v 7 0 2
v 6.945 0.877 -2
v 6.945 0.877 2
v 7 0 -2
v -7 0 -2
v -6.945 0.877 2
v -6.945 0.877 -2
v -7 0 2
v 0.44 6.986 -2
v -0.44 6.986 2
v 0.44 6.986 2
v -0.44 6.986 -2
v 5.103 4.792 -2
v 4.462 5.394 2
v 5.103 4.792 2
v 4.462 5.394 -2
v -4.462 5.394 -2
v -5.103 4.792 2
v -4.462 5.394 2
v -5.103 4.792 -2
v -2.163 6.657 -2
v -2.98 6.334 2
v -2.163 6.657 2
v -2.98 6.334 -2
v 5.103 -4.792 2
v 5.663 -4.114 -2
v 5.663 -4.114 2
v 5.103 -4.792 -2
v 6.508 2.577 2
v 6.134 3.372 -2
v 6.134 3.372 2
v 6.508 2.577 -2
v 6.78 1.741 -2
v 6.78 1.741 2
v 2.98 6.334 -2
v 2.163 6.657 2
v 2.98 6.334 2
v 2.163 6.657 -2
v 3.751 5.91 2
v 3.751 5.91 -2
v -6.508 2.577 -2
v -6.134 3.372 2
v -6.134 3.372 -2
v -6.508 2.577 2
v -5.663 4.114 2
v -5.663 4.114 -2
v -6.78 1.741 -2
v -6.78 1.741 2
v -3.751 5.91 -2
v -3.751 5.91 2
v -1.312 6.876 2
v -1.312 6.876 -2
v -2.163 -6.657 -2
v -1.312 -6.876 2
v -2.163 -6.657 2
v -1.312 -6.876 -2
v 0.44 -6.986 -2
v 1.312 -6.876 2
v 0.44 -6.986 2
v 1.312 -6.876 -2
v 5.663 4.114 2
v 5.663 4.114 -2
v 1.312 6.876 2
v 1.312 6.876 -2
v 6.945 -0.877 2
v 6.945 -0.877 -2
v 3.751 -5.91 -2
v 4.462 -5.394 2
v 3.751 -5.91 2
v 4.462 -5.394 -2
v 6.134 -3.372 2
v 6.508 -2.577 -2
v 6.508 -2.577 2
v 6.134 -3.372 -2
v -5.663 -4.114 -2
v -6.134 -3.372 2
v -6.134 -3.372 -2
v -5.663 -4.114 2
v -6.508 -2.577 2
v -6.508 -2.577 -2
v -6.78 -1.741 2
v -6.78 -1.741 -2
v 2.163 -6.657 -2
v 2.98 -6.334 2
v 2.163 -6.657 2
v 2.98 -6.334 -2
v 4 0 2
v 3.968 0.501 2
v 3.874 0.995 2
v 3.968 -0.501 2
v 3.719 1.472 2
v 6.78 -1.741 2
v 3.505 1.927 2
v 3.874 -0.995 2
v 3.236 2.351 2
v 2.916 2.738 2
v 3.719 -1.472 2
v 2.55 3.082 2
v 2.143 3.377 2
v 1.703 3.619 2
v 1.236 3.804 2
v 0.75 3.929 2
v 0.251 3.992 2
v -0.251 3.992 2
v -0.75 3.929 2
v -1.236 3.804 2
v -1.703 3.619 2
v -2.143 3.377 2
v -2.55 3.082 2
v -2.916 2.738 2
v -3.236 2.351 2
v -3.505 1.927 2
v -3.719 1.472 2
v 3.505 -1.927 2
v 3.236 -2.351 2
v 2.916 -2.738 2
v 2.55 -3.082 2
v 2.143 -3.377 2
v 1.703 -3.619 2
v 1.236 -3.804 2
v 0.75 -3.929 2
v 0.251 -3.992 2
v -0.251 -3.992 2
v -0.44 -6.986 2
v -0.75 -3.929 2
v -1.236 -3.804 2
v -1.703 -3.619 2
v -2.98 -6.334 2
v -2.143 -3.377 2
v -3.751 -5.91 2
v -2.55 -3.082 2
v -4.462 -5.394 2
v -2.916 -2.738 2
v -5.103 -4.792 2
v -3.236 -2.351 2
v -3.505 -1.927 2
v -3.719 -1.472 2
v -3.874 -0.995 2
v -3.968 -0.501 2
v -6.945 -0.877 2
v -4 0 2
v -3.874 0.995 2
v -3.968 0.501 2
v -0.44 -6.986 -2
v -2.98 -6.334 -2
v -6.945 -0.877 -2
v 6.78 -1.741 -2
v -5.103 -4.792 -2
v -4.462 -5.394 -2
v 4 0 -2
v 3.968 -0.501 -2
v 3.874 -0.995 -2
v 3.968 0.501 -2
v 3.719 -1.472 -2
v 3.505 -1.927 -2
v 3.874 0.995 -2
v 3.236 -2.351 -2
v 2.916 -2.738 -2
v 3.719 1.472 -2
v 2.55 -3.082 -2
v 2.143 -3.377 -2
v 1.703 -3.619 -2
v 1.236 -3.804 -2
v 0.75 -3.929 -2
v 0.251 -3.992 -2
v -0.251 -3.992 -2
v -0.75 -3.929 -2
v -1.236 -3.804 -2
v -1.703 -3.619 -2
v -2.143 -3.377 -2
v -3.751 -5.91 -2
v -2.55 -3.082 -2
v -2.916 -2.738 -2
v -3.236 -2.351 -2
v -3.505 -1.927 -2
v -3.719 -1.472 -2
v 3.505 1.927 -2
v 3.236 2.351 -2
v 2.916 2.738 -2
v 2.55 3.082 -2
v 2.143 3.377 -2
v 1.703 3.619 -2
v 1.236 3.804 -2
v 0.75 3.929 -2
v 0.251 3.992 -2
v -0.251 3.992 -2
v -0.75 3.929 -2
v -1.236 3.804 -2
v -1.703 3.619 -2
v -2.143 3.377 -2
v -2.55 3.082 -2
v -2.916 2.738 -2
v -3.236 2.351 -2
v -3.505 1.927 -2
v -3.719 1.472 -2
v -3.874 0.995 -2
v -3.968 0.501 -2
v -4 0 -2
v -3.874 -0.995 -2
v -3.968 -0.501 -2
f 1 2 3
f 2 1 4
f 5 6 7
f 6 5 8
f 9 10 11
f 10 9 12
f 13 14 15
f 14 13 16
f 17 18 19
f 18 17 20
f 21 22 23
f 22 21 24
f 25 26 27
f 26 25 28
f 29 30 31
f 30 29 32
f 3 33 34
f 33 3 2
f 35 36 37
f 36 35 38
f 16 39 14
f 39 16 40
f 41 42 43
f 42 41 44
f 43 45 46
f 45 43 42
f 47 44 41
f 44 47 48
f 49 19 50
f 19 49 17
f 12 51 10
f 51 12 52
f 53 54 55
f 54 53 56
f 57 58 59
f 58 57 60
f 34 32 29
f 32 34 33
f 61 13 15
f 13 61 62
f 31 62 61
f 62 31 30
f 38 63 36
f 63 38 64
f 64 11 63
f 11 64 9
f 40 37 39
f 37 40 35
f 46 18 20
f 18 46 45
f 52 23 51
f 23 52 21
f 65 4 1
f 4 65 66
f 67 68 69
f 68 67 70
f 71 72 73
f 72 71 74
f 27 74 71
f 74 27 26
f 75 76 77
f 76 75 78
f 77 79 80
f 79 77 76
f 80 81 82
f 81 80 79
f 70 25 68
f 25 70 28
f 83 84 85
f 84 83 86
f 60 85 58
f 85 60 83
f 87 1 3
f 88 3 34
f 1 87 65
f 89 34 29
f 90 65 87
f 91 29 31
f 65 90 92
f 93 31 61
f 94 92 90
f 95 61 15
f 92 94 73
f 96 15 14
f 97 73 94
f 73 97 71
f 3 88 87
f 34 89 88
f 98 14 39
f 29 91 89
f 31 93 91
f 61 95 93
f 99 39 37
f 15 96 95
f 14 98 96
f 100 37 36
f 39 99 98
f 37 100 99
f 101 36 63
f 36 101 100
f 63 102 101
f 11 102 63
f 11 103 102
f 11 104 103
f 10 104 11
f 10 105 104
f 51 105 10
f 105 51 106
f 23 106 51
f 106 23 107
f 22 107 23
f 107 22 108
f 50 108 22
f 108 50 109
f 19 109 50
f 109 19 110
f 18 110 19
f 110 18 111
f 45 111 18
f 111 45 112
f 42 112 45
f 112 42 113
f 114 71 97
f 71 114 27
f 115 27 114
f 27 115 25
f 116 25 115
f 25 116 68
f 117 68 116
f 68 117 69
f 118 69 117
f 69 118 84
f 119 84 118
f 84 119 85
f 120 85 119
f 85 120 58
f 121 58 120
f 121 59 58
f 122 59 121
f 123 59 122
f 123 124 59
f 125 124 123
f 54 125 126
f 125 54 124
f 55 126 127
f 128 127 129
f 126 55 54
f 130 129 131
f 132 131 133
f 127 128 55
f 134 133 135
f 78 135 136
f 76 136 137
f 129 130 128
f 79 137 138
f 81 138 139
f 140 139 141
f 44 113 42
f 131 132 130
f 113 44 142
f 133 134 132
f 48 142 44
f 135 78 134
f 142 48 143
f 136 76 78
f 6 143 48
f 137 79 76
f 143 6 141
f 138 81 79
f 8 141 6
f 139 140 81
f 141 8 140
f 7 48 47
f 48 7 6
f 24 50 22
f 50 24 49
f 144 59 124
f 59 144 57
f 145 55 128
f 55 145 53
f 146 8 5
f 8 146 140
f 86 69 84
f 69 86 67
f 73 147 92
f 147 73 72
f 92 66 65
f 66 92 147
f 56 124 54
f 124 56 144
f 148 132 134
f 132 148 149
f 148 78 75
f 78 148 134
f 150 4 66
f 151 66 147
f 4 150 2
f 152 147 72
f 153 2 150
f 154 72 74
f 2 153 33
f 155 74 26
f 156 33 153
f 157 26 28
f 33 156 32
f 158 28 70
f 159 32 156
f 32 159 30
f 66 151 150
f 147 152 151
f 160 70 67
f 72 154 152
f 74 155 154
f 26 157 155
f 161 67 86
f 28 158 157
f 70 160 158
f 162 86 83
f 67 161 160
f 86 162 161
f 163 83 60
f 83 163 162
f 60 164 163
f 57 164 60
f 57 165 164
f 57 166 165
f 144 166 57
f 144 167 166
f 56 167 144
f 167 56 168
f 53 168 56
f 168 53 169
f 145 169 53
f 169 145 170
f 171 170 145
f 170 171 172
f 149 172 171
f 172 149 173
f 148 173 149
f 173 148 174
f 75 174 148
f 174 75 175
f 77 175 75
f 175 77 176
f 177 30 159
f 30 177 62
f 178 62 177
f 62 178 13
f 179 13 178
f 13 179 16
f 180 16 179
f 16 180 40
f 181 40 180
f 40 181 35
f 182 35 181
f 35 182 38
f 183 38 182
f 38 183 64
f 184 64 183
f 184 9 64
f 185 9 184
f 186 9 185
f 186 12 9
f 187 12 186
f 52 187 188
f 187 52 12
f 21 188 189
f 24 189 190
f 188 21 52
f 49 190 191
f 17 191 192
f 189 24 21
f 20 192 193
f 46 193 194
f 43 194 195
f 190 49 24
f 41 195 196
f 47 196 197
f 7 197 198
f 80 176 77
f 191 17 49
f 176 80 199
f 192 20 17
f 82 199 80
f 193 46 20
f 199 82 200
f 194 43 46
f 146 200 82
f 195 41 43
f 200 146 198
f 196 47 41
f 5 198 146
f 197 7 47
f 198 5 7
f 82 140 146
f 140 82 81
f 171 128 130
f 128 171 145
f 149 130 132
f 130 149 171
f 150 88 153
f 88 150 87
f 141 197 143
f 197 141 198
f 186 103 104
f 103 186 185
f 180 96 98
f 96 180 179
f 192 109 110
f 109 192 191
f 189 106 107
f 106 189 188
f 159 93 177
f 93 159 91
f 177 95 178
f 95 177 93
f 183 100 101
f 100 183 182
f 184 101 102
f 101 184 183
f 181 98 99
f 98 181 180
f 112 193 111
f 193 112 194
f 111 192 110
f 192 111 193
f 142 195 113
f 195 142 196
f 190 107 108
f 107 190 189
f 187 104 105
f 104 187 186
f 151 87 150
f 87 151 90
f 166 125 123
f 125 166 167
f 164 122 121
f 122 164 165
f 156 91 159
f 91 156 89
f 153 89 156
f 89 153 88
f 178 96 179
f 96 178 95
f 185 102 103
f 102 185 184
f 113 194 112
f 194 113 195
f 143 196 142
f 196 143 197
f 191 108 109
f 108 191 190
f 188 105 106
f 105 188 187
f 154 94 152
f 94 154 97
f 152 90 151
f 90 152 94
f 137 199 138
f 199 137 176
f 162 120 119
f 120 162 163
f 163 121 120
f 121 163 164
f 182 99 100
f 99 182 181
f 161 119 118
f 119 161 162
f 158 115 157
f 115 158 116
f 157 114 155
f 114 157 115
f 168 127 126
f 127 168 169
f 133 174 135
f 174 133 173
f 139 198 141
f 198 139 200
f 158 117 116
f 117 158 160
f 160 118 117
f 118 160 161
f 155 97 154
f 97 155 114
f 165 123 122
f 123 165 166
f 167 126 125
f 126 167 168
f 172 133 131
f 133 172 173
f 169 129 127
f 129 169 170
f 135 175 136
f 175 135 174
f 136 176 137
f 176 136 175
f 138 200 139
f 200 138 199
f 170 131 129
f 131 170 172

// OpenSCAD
$fn = 50;


difference() {
	union() {
		translate(v = [0, 0, -2.0000000000]) {
			cylinder(h = 4, r = 7.0000000000);
		}
	}
	union() {
		translate(v = [0, 0, -100.0000000000]) {
			cylinder(h = 200, r = 4.0000000000);
		}
	}
}
